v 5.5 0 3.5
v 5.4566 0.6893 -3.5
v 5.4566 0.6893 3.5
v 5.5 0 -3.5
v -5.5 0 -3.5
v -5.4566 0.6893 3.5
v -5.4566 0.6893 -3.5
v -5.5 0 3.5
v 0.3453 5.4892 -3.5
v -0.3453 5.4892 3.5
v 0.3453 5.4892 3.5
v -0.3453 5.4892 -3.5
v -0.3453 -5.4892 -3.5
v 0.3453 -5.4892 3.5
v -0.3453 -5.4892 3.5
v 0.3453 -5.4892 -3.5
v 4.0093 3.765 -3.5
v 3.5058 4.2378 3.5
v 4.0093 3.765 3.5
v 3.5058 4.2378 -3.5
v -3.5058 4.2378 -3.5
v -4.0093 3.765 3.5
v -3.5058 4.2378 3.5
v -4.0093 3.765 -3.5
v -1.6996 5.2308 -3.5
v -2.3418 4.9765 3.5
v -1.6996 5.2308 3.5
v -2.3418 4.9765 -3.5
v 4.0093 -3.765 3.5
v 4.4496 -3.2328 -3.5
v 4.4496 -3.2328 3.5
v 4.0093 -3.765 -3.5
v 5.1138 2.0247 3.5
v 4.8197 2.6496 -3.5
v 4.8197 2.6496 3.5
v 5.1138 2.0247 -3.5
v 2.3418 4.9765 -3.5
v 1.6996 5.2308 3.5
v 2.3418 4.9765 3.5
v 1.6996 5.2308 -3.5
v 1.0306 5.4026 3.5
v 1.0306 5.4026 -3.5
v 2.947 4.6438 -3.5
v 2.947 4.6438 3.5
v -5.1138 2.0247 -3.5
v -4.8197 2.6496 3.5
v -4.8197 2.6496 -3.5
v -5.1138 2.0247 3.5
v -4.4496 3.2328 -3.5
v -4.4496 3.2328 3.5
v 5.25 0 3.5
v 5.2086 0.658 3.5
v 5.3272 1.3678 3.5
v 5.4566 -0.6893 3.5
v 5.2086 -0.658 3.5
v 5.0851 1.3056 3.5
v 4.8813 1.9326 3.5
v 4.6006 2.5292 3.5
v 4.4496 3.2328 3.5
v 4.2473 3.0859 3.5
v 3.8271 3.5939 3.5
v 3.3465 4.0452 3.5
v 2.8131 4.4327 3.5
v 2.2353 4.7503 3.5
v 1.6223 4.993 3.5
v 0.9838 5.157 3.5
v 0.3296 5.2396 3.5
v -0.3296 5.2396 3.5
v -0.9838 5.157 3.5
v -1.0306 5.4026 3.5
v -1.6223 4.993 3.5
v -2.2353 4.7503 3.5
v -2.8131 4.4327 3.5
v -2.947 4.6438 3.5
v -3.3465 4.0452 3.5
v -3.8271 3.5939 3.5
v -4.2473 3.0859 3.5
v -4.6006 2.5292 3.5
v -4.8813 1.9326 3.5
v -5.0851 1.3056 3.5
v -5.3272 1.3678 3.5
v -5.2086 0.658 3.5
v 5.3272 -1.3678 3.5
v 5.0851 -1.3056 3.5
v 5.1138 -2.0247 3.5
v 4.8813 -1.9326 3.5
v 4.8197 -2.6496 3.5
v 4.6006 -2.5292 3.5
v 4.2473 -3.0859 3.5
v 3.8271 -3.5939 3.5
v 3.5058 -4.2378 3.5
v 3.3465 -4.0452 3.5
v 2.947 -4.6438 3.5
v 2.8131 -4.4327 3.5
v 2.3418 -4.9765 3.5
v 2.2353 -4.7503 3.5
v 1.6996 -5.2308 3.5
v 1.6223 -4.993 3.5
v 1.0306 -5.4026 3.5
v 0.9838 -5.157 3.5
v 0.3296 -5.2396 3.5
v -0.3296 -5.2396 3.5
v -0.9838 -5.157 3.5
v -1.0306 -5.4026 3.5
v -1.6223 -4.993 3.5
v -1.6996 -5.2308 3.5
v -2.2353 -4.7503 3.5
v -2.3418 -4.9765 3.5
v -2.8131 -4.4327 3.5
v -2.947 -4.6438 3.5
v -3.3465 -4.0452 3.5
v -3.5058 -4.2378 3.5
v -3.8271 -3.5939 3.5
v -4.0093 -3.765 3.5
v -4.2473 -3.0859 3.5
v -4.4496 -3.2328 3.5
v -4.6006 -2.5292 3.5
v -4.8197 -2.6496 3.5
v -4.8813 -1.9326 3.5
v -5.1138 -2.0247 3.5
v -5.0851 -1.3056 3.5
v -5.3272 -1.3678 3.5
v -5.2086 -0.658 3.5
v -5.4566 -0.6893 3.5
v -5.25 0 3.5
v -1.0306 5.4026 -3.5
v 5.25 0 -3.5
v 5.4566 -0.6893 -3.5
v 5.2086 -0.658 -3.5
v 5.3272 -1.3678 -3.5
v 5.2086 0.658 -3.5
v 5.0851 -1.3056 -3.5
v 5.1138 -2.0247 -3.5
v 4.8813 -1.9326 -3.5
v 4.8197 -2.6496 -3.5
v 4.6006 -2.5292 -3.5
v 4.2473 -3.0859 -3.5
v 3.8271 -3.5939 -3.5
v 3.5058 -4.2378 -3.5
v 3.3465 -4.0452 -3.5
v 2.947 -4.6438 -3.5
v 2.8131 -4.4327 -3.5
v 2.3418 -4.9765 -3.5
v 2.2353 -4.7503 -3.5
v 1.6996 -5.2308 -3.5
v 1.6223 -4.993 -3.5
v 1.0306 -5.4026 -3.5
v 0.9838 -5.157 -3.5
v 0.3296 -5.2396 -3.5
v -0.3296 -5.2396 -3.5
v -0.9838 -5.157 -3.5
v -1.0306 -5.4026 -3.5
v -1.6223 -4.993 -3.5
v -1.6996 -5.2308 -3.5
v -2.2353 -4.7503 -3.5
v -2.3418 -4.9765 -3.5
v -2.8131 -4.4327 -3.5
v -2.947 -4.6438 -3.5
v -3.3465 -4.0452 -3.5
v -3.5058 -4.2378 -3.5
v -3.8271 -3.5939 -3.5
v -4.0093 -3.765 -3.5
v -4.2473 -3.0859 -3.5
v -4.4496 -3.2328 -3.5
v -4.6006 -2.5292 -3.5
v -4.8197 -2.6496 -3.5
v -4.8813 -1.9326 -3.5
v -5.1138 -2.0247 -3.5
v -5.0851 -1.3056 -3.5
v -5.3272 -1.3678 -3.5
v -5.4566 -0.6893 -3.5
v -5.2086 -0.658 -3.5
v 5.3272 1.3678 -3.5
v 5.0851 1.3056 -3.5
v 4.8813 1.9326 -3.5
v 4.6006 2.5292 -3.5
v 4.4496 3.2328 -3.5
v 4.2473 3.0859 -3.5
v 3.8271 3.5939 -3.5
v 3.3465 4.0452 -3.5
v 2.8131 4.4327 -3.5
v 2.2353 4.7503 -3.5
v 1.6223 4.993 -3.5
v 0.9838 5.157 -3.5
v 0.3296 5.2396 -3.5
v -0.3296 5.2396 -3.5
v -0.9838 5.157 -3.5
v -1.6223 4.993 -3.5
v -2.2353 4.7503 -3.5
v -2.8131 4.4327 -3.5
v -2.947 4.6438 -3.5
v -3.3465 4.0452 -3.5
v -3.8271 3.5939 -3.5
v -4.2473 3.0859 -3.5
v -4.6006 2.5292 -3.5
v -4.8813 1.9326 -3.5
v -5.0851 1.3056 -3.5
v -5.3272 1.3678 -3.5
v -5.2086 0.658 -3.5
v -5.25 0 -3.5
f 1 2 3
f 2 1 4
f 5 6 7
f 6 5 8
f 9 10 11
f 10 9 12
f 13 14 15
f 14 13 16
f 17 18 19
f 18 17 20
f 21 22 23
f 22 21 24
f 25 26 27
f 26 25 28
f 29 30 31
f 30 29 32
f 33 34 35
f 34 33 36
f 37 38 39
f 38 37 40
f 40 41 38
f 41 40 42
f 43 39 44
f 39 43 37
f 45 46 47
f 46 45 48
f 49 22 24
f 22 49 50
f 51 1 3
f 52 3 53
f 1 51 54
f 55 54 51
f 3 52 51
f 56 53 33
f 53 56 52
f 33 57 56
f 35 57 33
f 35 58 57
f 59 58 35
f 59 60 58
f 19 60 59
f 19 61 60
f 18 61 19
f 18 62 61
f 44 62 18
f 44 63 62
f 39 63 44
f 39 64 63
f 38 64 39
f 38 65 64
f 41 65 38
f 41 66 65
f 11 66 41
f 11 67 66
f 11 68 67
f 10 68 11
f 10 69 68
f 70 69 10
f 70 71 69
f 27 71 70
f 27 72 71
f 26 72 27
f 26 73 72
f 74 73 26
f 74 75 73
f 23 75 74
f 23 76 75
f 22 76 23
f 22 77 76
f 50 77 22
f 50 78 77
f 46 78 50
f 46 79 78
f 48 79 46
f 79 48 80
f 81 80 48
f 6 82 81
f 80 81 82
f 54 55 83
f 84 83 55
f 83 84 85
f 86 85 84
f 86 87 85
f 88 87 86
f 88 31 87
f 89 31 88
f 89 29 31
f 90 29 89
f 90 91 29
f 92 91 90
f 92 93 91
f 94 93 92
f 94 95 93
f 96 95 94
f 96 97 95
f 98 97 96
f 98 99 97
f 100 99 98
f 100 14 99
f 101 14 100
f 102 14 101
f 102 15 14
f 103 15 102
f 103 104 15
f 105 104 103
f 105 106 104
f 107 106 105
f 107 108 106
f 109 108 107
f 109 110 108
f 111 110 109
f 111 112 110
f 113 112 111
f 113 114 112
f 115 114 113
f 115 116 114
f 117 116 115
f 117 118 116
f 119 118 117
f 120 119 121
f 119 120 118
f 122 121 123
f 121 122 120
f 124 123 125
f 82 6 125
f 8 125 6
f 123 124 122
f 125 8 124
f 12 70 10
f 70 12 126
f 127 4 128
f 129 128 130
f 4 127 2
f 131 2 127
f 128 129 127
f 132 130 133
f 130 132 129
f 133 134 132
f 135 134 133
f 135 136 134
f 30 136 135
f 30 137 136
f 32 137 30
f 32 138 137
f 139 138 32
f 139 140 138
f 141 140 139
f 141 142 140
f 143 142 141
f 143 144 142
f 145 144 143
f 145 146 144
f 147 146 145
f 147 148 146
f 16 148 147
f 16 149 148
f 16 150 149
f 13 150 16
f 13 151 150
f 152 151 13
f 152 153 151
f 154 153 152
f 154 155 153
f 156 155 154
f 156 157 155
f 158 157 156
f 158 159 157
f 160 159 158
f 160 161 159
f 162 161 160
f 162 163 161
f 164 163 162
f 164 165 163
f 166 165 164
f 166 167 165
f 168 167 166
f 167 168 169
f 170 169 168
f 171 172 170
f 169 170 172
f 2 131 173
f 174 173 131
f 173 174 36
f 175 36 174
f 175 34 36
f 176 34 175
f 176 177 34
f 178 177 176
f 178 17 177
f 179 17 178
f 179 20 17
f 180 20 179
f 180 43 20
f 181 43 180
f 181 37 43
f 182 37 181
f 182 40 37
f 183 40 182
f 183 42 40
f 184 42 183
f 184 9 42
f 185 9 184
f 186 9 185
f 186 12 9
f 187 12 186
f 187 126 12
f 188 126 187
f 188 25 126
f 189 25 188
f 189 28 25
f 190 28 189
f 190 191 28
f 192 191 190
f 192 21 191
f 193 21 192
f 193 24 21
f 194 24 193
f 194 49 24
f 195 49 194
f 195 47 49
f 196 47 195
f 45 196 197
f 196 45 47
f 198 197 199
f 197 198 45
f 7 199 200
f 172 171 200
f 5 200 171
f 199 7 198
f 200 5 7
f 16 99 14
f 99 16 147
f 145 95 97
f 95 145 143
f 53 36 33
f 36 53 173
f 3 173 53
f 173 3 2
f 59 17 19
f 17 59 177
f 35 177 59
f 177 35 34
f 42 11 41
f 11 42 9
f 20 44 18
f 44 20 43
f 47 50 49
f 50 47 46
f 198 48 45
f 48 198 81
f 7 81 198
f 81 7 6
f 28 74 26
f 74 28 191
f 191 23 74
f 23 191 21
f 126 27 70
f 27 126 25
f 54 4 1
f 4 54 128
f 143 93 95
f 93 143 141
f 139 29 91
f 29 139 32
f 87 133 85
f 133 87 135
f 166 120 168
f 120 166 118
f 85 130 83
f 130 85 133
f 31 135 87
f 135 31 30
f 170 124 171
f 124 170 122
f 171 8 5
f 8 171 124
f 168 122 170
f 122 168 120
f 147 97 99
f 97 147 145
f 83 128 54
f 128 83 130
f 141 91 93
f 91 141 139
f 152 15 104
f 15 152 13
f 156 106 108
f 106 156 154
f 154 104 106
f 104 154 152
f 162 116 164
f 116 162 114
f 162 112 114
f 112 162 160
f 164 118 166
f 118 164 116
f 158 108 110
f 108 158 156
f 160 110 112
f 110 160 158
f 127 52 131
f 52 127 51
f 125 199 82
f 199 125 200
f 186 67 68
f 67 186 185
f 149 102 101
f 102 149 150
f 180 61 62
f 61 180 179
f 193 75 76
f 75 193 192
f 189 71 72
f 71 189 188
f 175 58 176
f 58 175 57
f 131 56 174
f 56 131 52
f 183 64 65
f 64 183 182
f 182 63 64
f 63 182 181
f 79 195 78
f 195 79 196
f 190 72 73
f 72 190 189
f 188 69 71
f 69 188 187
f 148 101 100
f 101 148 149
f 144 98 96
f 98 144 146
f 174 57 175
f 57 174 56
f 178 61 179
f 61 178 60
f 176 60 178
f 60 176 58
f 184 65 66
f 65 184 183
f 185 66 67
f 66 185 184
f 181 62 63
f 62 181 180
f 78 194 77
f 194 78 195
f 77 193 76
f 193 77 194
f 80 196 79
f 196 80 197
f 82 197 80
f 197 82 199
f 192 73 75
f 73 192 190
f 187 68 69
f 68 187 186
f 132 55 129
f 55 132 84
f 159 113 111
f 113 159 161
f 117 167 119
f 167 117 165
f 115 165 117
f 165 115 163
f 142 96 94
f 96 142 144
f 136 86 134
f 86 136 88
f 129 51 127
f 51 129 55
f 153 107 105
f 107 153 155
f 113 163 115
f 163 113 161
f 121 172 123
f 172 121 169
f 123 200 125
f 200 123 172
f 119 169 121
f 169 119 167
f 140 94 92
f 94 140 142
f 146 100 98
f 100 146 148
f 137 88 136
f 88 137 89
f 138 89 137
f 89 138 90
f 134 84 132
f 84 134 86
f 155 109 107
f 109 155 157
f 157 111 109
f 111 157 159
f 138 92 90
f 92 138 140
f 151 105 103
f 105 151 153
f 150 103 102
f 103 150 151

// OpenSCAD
$fn = 50;


difference() {
	union() {
		translate(v = [0, 0, -3.5000000000]) {
			cylinder(h = 7, r = 5.5000000000);
		}
	}
	union() {
		translate(v = [0, 0, -100.0000000000]) {
			cylinder(h = 200, r = 5.2500000000);
		}
	}
}
